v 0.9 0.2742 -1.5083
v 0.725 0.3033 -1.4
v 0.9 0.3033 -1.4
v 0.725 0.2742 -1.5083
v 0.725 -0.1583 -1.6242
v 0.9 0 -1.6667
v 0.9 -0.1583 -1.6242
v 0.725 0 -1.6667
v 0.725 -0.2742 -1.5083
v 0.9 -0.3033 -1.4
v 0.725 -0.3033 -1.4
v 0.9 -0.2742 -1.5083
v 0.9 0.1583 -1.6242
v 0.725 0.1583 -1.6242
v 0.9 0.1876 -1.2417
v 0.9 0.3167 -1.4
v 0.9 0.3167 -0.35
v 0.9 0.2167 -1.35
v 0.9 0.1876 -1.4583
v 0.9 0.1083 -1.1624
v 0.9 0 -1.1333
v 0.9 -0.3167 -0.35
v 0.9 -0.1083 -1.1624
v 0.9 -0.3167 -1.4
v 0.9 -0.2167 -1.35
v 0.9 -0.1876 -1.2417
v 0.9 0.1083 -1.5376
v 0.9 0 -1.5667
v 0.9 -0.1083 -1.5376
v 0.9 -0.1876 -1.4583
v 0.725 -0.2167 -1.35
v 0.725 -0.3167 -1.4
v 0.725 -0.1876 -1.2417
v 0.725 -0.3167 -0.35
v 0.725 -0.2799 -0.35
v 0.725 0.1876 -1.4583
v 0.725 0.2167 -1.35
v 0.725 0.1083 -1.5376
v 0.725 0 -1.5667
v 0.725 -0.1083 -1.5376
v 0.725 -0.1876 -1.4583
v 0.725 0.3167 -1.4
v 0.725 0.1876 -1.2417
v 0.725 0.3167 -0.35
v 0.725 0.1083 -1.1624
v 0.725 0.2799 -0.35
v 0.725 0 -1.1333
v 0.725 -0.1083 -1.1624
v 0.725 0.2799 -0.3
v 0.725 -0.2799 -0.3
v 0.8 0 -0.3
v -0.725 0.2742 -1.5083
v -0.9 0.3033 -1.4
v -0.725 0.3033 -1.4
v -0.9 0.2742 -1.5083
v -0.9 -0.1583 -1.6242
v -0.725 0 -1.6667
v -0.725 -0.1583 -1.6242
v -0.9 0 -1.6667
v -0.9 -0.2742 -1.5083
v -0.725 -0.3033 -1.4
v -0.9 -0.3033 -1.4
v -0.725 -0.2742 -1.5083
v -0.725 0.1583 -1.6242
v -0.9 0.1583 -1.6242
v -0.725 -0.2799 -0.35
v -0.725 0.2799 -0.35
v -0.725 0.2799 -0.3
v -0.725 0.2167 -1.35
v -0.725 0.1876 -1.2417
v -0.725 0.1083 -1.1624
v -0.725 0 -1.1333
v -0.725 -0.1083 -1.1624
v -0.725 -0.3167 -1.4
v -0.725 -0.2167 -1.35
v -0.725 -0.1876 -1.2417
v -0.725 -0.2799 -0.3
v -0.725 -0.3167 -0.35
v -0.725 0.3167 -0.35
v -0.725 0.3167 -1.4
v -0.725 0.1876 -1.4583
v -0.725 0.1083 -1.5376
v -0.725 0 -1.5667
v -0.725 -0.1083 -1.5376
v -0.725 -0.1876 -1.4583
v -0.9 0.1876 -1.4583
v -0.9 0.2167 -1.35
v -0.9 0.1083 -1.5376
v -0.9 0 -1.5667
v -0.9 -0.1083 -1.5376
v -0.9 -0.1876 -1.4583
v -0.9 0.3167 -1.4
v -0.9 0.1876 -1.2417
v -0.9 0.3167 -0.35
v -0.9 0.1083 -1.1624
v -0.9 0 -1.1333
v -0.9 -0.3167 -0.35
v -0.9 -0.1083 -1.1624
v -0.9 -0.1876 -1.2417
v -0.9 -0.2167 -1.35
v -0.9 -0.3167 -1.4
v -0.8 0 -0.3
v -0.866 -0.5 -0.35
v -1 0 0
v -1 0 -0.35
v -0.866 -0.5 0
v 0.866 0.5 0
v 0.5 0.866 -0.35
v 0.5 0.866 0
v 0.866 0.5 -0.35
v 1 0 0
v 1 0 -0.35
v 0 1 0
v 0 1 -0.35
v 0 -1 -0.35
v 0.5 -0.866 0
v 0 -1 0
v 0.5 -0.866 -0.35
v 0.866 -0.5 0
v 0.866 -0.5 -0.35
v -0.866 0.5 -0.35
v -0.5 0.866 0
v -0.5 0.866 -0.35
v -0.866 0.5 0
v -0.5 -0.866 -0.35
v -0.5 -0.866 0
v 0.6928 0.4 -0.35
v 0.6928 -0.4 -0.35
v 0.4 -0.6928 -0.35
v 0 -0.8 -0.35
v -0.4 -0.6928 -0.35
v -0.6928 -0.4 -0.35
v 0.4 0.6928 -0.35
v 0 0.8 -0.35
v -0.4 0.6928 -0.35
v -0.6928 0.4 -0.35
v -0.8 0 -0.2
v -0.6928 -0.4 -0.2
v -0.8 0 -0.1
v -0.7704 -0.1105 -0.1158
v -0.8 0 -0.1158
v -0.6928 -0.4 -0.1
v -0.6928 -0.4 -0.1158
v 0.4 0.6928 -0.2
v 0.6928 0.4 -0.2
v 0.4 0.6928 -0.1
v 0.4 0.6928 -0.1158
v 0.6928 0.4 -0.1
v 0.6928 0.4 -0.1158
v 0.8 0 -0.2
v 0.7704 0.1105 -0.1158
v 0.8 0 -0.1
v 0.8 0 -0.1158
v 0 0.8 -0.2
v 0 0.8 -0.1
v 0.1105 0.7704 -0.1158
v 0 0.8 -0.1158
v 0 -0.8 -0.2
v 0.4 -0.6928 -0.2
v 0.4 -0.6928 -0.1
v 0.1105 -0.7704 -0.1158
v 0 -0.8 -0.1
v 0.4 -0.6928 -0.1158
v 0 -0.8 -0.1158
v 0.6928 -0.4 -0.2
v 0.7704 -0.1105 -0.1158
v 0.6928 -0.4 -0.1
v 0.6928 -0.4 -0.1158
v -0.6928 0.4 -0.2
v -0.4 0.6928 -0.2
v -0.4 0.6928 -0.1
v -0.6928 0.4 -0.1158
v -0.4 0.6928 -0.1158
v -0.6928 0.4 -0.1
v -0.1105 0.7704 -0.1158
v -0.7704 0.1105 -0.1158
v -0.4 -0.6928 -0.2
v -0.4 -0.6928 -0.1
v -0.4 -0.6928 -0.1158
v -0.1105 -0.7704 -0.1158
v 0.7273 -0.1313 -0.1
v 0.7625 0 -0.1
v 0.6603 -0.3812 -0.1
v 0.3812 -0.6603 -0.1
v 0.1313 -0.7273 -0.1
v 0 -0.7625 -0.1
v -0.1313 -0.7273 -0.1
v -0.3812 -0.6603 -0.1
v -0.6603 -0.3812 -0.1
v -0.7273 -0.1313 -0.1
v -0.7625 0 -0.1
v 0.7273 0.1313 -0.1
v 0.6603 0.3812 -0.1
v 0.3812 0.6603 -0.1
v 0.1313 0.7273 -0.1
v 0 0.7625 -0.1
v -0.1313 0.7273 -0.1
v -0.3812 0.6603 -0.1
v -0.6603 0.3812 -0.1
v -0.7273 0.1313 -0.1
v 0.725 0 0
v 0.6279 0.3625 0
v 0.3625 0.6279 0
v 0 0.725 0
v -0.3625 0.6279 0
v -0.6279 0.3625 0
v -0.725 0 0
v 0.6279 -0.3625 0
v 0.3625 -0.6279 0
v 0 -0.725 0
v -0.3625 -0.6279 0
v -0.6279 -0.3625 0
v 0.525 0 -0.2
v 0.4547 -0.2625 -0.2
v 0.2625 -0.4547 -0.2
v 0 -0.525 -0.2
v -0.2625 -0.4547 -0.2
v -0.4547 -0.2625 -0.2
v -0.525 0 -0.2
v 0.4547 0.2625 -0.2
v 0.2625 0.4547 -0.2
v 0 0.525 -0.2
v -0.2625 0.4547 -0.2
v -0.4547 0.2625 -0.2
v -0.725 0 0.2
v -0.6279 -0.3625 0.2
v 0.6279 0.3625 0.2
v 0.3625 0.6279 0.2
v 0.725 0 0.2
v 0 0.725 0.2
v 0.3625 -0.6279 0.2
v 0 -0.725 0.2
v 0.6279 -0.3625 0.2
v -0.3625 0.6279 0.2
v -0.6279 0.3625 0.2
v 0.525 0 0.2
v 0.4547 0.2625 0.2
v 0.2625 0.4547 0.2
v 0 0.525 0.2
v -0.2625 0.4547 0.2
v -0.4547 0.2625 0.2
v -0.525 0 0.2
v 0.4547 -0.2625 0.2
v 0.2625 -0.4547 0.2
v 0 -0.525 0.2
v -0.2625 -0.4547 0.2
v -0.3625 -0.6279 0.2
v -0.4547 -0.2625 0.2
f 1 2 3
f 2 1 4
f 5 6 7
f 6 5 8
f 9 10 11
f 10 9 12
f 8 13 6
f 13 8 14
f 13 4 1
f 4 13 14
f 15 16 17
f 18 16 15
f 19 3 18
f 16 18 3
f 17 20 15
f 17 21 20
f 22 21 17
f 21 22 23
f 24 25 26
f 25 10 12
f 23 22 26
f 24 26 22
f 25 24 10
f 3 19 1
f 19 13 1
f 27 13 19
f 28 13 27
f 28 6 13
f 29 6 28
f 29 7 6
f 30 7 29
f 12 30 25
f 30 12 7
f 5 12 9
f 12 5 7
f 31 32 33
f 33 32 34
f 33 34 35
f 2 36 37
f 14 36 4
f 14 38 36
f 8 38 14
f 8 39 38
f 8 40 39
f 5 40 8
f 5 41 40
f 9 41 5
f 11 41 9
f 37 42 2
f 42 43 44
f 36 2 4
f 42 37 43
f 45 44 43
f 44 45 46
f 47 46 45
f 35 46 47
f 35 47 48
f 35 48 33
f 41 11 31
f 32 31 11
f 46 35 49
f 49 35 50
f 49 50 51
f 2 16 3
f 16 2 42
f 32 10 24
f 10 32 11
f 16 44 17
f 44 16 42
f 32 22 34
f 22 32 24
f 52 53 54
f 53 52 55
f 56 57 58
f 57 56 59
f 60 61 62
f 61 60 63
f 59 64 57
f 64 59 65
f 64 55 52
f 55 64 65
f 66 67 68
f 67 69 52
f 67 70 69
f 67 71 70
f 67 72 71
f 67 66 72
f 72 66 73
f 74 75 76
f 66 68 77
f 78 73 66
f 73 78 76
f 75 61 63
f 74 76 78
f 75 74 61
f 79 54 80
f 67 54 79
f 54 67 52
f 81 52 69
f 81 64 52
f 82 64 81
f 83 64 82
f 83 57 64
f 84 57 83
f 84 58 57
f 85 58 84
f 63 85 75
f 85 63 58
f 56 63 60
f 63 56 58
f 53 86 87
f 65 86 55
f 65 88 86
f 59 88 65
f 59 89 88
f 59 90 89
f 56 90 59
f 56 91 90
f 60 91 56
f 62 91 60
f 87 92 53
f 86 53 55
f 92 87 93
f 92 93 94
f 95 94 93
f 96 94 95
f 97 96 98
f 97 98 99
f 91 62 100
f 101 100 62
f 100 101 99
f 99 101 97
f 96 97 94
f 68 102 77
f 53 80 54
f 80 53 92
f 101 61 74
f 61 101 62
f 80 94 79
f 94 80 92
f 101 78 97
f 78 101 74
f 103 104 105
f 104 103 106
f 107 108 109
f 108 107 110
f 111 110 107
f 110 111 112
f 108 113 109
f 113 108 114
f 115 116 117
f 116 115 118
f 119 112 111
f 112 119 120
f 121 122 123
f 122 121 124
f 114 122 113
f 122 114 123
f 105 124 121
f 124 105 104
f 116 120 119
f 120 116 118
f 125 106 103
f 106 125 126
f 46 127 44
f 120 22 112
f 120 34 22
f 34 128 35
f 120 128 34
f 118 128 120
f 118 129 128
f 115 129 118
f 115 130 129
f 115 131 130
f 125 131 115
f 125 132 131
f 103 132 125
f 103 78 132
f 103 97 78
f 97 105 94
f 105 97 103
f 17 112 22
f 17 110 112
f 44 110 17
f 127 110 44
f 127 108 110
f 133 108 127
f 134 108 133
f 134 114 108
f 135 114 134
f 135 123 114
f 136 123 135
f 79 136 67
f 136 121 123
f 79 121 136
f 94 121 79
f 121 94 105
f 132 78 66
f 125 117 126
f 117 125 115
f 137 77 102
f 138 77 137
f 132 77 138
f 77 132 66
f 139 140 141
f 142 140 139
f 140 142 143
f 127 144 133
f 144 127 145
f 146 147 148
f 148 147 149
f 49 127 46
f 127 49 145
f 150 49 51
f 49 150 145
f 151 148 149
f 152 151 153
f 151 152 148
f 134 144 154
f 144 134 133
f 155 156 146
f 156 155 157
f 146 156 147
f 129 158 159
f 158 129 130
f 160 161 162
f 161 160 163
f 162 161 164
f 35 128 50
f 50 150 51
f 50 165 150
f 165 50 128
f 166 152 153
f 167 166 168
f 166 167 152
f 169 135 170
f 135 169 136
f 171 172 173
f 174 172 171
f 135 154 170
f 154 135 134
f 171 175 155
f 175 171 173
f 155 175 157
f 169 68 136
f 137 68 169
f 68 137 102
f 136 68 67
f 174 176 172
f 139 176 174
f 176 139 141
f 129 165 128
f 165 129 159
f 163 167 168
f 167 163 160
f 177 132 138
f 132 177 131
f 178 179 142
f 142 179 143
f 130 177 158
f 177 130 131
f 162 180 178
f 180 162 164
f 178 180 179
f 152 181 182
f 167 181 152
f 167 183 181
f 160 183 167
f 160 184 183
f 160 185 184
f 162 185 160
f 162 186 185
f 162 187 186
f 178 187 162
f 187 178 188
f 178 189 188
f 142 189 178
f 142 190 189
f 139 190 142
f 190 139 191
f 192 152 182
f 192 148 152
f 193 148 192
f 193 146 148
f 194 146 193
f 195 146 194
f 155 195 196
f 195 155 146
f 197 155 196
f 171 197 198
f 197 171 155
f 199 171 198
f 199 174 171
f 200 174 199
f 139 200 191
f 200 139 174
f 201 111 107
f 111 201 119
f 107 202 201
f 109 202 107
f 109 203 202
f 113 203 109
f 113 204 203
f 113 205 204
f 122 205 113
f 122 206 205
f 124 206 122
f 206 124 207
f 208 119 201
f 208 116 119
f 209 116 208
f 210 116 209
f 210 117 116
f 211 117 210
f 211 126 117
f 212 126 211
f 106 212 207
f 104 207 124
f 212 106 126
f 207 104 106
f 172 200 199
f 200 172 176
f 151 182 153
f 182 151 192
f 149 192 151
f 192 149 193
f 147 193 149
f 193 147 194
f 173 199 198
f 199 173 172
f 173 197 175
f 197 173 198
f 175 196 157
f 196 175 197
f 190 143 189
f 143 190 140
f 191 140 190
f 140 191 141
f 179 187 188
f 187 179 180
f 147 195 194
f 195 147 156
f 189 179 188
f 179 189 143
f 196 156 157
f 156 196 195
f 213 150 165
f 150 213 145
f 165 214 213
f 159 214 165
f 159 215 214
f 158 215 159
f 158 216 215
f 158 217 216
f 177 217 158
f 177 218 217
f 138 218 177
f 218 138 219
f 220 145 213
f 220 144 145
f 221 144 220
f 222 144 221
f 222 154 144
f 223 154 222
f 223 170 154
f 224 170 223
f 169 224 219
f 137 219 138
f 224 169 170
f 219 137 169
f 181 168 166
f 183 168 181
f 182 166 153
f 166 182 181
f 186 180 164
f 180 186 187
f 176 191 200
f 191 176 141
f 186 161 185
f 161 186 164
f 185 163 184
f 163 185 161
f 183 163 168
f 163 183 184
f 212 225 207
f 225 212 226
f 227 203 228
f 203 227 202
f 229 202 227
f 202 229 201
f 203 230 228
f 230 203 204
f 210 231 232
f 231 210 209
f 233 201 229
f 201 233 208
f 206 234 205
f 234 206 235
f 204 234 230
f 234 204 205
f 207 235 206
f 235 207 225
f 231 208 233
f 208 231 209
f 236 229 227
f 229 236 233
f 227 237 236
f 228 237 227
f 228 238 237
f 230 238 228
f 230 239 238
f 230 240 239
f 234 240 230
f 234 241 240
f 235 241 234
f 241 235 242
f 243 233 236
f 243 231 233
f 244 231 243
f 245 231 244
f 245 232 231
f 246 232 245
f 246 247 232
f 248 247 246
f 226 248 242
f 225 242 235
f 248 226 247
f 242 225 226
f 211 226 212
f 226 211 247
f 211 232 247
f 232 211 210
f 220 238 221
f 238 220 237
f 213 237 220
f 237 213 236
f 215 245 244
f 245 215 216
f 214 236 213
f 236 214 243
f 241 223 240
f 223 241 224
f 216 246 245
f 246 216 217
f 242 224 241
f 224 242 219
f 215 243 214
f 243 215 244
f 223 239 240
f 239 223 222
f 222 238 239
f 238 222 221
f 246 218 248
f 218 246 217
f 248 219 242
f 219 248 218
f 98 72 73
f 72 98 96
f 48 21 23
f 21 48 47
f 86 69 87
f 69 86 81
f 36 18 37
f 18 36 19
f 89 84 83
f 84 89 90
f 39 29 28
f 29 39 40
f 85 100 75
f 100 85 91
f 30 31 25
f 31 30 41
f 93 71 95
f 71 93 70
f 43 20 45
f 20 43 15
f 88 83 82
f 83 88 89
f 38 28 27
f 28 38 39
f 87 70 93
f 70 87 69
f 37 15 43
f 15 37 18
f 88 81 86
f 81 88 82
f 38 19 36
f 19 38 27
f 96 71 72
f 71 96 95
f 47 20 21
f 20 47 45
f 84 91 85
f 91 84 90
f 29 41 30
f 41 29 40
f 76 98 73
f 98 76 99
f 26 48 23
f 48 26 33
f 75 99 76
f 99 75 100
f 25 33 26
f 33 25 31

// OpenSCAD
tolerance=0.075;
hole_radius=0.05;
grid_hole_radius=0.05;
outer_radius=1;
thickness=0.2;
hole_attach_height=0.05;
attach_thickness=0.1;
bottom_rotation_height=1.625;
top_rotation_height=1.35;
next_hole_radius=0.05;
next_hole_attach_height=0.05;
next_inner=0.8;
max_turn=90.0;
min_turn=90.0;
hole_twist=0.0042;

//parameters that don't have to be defined explicitly
eps = tolerance/100;
inner_radius = outer_radius - thickness;
axle_offset = attach_thickness;
bottom_joint_attach_radius = outer_radius - hole_attach_height - grid_hole_radius*2 - thickness;
fn = 12;
fnh = 6;

//solve for b = axle height
max_turn_b = outer_radius / tan((180 - max_turn)/2);
min_turn_b = outer_radius / tan((180 - min_turn)/2);
axle_radius = bottom_joint_attach_radius/3;

grid_hole_height = hole_radius*2 + hole_attach_height * 2;
bottom_joint_grid_clearance = bottom_rotation_height - (hole_attach_height*2 + hole_radius*2 + grid_hole_height + max_turn_b + attach_thickness);

module angled_cylinder(angle_deg_y, _h, _r, angle_deg_x = 0) {
    rotate([angle_deg_x, angle_deg_y, 0]) { // Rotate the cylinder 
            cylinder(h = _h, r = _r, center = true, $fn = fnh);
        }
}

module joint_top() {
    operating_height = hole_attach_height*2 + attach_thickness + hole_radius*2 + grid_hole_height + bottom_joint_grid_clearance + max_turn_b;
    
    top_attach_height = axle_offset + axle_radius + max_turn_b;
    cyl_height = top_rotation_height - max_turn_b;

    difference() {
        translate([0,0, operating_height]) 
        difference() {
            union() {
                translate([0,0,- axle_radius - axle_offset + top_attach_height/2]) 
                {
                    
                    //attach points
                    axle_attach_thickness = outer_radius - thickness/2 - bottom_joint_attach_radius - tolerance ;
                    
                    attach_distance = bottom_joint_attach_radius + axle_attach_thickness/2 + tolerance;

                    translate([attach_distance, 0, 0]) {
                        translate([0,0,-top_attach_height/2 + axle_radius + axle_offset])
                        rotate([0,90,0])
                        cylinder(h=axle_attach_thickness,r=axle_radius + axle_offset,center=true, $fn = fn);
                        translate([0,0,(axle_radius + axle_offset)/2])
                    cube([axle_attach_thickness, (axle_radius + axle_offset)*2, top_attach_height - axle_offset - axle_radius + attach_thickness],center=true);
                    }
                    
                    translate([-attach_distance, 0, 0]) {
                        translate([0,0,-top_attach_height/2 + axle_radius + axle_offset])
                        rotate([0,90,0])
                        cylinder(h=axle_attach_thickness,r=axle_radius + axle_offset,center=true, $fn = fn);
                        translate([0,0,(axle_radius + axle_offset)/2])
                    cube([axle_attach_thickness, (axle_radius + axle_offset)*2, top_attach_height - axle_offset - axle_radius + attach_thickness],center=true);
                    }  
                    
                    //outer cylinder
                    translate([0,0,top_attach_height/2]) {
                        difference() {
                            cylinder(h=cyl_height,r=outer_radius,$fn=fn);
                            translate([0,0,-eps/2])
                            cylinder(h=cyl_height + eps,r=inner_radius,$fn=fn);
                        }
                        
                        //enforce min turn
                        translate([0,0,-(max_turn_b - min_turn_b)])
                        difference() {
                            cylinder(h=max_turn_b - min_turn_b,r=outer_radius,$fn=fn);
                            
                            translate([-outer_radius,-outer_radius,-eps/2])
                            cube([outer_radius*2,outer_radius - axle_radius - axle_offset + eps/2,max_turn_b - min_turn_b + eps]);
                            
                            translate([0,0,-eps/2])
                            cylinder(h=max_turn_b - min_turn_b + eps,r=inner_radius,$fn=fn);
                       }
                    }       
                } 
                
                
                //attachment segment
                translate([0,0,cyl_height + max_turn_b])
                difference() {
                        union() {
                            //attachment for smaller cylinder
                            translate([0,0,-attach_thickness])
                            cylinder(h=attach_thickness, r=outer_radius, $fn=fn);
                            translate([0,0,-attach_thickness*2])
                            cylinder(h=attach_thickness*2, r1=outer_radius, r2=next_inner - tolerance - thickness, $fn=fn);
                            
                            //small cylinder
                            cylinder(h=next_hole_radius*2 + next_hole_attach_height * 2, r = next_inner - tolerance, $fn=fn);
                        }
                        
                        //shelling
                        translate([0,0, -attach_thickness*2 - eps/2])
                        cylinder(h=next_hole_radius*2 + next_hole_attach_height * 2 + attach_thickness*2 + eps, r = min(inner_radius, next_inner - tolerance - thickness), $fn=fn);
                        
                        //holes for screws
//                        translate([0,0,next_hole_attach_height + next_hole_radius]) {
//                            angled_cylinder(0, (next_inner + thickness + eps) * 2,  next_hole_radius, 90);
//                            angled_cylinder(90, (next_inner + thickness + eps) * 2, next_hole_radius, 0);
//                        }
                    }

            }
            
            //holes for string routing
//             translate([0,-inner_radius + tolerance,max_turn_b]) 
//            rotate([90,0,0])
//            {
//                cylinder(h=thickness + inner_radius + tolerance,r=grid_hole_radius,$fn=fn);
//                translate([0,hole_attach_height + grid_hole_radius*2,0])
//                cylinder(h=thickness + inner_radius + tolerance,r=grid_hole_radius,$fn=fn);
//
//            }
//
//            translate([0,outer_radius + tolerance,min_turn_b])
//            rotate([90,0,0])
//            {
//                cylinder(h=thickness + inner_radius + tolerance,r=grid_hole_radius,$fn=fn);
//                translate([0,hole_attach_height + grid_hole_radius*2,0])
//                cylinder(h=thickness + inner_radius + tolerance,r=grid_hole_radius,$fn=fn);
//
//            }
             

        }

        //axle hole
        translate([0,0,operating_height])
        rotate([0,90,0])
        cylinder(h=outer_radius*2,r=axle_radius,center=true,$fn=fn);
        
    }
}

translate([0,0,-(bottom_rotation_height + top_rotation_height)])
joint_top();
